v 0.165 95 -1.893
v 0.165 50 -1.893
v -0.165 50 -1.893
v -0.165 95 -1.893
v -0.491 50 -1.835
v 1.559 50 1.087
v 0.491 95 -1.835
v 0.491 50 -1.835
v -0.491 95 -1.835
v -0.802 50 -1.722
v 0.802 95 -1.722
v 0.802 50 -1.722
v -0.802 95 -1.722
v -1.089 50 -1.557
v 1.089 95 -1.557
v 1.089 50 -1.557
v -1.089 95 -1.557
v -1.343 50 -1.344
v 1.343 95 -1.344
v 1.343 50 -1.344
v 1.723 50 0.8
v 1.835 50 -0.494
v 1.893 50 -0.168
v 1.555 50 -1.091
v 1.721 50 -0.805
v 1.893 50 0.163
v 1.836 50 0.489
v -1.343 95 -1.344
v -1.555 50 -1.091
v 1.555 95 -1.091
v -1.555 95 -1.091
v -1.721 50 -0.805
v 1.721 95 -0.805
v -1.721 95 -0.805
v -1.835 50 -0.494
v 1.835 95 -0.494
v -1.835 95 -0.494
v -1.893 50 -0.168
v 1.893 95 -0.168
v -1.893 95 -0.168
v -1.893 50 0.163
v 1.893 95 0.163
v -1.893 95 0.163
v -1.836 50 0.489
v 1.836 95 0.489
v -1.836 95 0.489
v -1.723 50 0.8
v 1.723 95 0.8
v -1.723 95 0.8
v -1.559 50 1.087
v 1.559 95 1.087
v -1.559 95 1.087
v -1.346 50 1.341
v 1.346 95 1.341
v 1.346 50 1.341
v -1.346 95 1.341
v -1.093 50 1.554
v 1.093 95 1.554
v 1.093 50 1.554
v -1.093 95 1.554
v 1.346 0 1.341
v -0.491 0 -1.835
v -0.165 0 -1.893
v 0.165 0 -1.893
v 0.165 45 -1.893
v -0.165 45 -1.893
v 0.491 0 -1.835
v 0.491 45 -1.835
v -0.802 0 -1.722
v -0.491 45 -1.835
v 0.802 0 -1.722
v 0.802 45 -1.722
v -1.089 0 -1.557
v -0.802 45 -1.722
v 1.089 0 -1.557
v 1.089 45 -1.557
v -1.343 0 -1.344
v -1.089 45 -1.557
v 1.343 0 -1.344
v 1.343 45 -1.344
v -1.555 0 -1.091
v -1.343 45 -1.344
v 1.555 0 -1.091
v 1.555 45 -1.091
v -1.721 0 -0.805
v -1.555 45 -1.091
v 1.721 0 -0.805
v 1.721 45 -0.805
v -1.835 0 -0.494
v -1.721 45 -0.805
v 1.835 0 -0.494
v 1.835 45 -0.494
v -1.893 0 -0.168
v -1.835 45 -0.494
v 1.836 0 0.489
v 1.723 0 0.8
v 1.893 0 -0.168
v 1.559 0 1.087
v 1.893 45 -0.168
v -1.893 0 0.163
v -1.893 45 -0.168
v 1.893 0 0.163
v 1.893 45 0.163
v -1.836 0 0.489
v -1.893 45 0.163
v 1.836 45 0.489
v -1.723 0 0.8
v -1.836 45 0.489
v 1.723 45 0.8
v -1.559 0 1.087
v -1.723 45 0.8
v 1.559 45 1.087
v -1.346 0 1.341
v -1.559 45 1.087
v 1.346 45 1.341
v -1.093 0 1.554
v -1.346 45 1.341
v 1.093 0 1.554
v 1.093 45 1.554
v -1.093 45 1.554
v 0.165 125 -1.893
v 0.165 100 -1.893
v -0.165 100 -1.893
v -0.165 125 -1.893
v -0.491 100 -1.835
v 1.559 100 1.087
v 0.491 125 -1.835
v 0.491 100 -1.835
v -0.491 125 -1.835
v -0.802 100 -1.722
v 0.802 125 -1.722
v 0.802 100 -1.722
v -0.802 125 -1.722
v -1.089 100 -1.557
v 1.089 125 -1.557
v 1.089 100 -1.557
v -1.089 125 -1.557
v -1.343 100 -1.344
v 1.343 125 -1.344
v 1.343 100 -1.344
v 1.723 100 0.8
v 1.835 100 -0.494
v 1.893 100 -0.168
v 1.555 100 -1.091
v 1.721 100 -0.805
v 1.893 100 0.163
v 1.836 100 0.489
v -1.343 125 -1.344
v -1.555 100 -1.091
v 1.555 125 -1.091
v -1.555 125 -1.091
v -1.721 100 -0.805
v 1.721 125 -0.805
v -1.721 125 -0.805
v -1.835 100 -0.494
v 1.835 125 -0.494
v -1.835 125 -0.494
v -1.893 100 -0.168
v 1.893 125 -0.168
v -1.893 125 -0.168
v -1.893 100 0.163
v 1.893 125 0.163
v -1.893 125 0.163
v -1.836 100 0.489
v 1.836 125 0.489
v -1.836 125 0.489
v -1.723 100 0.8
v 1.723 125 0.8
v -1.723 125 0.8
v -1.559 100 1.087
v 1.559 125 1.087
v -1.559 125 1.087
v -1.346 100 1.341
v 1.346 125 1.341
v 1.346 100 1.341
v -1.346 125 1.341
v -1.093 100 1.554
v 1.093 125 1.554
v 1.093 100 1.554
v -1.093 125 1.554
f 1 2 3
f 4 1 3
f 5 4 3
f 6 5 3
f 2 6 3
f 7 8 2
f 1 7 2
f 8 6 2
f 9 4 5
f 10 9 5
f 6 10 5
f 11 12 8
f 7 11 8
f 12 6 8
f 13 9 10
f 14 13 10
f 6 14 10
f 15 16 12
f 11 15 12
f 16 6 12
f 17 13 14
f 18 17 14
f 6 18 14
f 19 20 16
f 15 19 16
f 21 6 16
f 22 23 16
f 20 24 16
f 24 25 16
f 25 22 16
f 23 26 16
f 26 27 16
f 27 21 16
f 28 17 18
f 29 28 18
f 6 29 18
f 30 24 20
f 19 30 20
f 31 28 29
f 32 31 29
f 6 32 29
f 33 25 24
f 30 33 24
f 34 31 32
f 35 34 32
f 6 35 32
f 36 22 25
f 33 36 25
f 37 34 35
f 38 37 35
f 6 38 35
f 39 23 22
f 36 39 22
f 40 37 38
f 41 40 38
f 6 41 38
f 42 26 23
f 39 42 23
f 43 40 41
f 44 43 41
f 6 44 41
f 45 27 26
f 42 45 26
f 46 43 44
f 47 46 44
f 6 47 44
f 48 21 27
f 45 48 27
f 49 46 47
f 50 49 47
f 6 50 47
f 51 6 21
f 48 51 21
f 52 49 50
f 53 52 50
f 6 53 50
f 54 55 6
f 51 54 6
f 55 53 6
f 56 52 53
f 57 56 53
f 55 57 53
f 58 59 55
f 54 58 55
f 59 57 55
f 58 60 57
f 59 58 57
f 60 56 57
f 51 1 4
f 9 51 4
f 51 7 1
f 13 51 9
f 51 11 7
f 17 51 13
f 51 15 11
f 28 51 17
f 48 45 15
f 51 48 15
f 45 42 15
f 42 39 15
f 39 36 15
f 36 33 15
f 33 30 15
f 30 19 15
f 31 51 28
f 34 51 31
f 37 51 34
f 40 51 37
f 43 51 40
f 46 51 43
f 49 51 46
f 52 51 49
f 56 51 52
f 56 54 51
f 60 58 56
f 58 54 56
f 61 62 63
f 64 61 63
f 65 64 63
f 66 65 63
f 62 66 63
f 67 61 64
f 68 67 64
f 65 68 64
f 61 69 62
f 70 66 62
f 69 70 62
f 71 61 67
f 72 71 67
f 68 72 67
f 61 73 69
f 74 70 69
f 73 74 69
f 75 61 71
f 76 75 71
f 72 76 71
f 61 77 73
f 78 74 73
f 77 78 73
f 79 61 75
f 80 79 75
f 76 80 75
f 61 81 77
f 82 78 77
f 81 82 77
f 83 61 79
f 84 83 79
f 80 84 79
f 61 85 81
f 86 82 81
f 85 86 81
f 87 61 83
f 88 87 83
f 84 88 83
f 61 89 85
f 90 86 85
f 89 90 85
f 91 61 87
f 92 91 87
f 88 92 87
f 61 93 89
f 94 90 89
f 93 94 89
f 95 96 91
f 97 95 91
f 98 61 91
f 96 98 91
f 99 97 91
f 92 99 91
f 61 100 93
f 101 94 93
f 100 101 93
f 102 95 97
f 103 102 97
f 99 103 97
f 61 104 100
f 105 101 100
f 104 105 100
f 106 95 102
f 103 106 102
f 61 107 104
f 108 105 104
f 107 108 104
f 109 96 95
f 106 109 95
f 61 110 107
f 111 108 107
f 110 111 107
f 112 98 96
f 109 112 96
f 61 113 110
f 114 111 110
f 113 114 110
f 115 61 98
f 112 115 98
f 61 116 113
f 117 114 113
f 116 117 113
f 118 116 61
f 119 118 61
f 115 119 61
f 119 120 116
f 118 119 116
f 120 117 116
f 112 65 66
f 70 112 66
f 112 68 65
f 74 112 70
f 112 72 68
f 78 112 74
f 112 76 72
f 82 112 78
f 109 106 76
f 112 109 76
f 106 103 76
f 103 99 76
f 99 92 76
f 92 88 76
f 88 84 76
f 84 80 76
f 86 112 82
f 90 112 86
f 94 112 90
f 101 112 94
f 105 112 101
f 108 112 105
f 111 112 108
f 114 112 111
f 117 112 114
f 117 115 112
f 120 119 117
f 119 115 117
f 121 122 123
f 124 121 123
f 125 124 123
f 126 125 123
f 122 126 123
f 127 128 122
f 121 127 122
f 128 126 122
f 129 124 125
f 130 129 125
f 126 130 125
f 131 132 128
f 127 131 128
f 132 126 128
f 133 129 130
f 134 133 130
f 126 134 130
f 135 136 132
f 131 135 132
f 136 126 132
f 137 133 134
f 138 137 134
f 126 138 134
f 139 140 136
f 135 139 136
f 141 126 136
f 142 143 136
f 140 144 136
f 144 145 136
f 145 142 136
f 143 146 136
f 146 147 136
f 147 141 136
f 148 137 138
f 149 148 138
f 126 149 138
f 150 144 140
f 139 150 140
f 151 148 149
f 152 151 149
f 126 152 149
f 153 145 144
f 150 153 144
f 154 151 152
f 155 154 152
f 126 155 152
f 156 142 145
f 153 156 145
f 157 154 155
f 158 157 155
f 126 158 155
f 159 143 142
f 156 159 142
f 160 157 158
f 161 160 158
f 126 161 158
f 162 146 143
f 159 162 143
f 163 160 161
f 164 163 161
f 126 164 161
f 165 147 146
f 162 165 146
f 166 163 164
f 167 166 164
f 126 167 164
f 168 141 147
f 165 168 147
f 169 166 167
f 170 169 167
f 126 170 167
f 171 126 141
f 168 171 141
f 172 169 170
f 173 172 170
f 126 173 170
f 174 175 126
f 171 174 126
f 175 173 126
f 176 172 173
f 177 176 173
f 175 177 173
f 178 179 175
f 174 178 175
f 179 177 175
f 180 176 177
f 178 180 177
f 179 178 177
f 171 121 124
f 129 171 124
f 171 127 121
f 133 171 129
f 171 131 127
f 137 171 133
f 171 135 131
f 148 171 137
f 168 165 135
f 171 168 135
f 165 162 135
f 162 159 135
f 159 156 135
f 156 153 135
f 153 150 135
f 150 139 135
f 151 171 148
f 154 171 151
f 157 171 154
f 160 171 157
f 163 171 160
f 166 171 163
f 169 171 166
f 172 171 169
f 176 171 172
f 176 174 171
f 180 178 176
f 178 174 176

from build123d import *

# Parameters (mm, degrees)
BOSS_EXTRUDE1_DEPTH = 130
SKETCH2_W           = 10.164440157
SKETCH2_H           = 5
SKETCH2_W_2         = 5.261886041
SKETCH2_W_3         = 2.186621348
SKETCH2_W_4         = 8.459625722
SKETCH2_W_5         = 16.182032923
SKETCH2_W_6         = 7.149876699
SKETCH2_W_7         = 3.543697944
CUT_EXTRUDE1_DEPTH  = 130


with BuildPart() as part:
    # Sketch1 → Boss-Extrude1 (new body)
    with BuildSketch(Plane(origin=(0, 0, 0), x_dir=(1, 0, 0), z_dir=(0, 1, 0))):
        with BuildLine():
            Line((-1.093310674, -1.553921417), (1.093310674, -1.553921417))
            ThreePointArc((1.093310674, -1.553921417), (0, 1.9), (-1.093310674, -1.553921417))
        make_face()
    extrude(amount=BOSS_EXTRUDE1_DEPTH)

    # Sketch2 → Cut-Extrude1 (cut)
    with BuildSketch(Plane.XY.offset(1.553921417)):
        with Locations((6.175530753, 127.5)):
            Rectangle(SKETCH2_W, SKETCH2_H)
        with Locations((-3.724253695, 127.5)):
            Rectangle(SKETCH2_W_2, SKETCH2_H)
        with Locations((0, 127.5)):
            Rectangle(SKETCH2_W_3, SKETCH2_H)
        with Locations((0, 97.5)):
            Rectangle(SKETCH2_W_3, SKETCH2_H)
        with Locations((-5.323123535, 97.5)):
            Rectangle(SKETCH2_W_4, SKETCH2_H)
        with Locations((9.184327136, 97.5)):
            Rectangle(SKETCH2_W_5, SKETCH2_H)
        with Locations((-4.668249024, 47.5)):
            Rectangle(SKETCH2_W_6, SKETCH2_H)
        with Locations((0, 47.5)):
            Rectangle(SKETCH2_W_3, SKETCH2_H)
        with Locations((2.865159646, 47.5)):
            Rectangle(SKETCH2_W_7, SKETCH2_H)
    extrude(amount=-CUT_EXTRUDE1_DEPTH, mode=Mode.SUBTRACT)


solid = part.part
